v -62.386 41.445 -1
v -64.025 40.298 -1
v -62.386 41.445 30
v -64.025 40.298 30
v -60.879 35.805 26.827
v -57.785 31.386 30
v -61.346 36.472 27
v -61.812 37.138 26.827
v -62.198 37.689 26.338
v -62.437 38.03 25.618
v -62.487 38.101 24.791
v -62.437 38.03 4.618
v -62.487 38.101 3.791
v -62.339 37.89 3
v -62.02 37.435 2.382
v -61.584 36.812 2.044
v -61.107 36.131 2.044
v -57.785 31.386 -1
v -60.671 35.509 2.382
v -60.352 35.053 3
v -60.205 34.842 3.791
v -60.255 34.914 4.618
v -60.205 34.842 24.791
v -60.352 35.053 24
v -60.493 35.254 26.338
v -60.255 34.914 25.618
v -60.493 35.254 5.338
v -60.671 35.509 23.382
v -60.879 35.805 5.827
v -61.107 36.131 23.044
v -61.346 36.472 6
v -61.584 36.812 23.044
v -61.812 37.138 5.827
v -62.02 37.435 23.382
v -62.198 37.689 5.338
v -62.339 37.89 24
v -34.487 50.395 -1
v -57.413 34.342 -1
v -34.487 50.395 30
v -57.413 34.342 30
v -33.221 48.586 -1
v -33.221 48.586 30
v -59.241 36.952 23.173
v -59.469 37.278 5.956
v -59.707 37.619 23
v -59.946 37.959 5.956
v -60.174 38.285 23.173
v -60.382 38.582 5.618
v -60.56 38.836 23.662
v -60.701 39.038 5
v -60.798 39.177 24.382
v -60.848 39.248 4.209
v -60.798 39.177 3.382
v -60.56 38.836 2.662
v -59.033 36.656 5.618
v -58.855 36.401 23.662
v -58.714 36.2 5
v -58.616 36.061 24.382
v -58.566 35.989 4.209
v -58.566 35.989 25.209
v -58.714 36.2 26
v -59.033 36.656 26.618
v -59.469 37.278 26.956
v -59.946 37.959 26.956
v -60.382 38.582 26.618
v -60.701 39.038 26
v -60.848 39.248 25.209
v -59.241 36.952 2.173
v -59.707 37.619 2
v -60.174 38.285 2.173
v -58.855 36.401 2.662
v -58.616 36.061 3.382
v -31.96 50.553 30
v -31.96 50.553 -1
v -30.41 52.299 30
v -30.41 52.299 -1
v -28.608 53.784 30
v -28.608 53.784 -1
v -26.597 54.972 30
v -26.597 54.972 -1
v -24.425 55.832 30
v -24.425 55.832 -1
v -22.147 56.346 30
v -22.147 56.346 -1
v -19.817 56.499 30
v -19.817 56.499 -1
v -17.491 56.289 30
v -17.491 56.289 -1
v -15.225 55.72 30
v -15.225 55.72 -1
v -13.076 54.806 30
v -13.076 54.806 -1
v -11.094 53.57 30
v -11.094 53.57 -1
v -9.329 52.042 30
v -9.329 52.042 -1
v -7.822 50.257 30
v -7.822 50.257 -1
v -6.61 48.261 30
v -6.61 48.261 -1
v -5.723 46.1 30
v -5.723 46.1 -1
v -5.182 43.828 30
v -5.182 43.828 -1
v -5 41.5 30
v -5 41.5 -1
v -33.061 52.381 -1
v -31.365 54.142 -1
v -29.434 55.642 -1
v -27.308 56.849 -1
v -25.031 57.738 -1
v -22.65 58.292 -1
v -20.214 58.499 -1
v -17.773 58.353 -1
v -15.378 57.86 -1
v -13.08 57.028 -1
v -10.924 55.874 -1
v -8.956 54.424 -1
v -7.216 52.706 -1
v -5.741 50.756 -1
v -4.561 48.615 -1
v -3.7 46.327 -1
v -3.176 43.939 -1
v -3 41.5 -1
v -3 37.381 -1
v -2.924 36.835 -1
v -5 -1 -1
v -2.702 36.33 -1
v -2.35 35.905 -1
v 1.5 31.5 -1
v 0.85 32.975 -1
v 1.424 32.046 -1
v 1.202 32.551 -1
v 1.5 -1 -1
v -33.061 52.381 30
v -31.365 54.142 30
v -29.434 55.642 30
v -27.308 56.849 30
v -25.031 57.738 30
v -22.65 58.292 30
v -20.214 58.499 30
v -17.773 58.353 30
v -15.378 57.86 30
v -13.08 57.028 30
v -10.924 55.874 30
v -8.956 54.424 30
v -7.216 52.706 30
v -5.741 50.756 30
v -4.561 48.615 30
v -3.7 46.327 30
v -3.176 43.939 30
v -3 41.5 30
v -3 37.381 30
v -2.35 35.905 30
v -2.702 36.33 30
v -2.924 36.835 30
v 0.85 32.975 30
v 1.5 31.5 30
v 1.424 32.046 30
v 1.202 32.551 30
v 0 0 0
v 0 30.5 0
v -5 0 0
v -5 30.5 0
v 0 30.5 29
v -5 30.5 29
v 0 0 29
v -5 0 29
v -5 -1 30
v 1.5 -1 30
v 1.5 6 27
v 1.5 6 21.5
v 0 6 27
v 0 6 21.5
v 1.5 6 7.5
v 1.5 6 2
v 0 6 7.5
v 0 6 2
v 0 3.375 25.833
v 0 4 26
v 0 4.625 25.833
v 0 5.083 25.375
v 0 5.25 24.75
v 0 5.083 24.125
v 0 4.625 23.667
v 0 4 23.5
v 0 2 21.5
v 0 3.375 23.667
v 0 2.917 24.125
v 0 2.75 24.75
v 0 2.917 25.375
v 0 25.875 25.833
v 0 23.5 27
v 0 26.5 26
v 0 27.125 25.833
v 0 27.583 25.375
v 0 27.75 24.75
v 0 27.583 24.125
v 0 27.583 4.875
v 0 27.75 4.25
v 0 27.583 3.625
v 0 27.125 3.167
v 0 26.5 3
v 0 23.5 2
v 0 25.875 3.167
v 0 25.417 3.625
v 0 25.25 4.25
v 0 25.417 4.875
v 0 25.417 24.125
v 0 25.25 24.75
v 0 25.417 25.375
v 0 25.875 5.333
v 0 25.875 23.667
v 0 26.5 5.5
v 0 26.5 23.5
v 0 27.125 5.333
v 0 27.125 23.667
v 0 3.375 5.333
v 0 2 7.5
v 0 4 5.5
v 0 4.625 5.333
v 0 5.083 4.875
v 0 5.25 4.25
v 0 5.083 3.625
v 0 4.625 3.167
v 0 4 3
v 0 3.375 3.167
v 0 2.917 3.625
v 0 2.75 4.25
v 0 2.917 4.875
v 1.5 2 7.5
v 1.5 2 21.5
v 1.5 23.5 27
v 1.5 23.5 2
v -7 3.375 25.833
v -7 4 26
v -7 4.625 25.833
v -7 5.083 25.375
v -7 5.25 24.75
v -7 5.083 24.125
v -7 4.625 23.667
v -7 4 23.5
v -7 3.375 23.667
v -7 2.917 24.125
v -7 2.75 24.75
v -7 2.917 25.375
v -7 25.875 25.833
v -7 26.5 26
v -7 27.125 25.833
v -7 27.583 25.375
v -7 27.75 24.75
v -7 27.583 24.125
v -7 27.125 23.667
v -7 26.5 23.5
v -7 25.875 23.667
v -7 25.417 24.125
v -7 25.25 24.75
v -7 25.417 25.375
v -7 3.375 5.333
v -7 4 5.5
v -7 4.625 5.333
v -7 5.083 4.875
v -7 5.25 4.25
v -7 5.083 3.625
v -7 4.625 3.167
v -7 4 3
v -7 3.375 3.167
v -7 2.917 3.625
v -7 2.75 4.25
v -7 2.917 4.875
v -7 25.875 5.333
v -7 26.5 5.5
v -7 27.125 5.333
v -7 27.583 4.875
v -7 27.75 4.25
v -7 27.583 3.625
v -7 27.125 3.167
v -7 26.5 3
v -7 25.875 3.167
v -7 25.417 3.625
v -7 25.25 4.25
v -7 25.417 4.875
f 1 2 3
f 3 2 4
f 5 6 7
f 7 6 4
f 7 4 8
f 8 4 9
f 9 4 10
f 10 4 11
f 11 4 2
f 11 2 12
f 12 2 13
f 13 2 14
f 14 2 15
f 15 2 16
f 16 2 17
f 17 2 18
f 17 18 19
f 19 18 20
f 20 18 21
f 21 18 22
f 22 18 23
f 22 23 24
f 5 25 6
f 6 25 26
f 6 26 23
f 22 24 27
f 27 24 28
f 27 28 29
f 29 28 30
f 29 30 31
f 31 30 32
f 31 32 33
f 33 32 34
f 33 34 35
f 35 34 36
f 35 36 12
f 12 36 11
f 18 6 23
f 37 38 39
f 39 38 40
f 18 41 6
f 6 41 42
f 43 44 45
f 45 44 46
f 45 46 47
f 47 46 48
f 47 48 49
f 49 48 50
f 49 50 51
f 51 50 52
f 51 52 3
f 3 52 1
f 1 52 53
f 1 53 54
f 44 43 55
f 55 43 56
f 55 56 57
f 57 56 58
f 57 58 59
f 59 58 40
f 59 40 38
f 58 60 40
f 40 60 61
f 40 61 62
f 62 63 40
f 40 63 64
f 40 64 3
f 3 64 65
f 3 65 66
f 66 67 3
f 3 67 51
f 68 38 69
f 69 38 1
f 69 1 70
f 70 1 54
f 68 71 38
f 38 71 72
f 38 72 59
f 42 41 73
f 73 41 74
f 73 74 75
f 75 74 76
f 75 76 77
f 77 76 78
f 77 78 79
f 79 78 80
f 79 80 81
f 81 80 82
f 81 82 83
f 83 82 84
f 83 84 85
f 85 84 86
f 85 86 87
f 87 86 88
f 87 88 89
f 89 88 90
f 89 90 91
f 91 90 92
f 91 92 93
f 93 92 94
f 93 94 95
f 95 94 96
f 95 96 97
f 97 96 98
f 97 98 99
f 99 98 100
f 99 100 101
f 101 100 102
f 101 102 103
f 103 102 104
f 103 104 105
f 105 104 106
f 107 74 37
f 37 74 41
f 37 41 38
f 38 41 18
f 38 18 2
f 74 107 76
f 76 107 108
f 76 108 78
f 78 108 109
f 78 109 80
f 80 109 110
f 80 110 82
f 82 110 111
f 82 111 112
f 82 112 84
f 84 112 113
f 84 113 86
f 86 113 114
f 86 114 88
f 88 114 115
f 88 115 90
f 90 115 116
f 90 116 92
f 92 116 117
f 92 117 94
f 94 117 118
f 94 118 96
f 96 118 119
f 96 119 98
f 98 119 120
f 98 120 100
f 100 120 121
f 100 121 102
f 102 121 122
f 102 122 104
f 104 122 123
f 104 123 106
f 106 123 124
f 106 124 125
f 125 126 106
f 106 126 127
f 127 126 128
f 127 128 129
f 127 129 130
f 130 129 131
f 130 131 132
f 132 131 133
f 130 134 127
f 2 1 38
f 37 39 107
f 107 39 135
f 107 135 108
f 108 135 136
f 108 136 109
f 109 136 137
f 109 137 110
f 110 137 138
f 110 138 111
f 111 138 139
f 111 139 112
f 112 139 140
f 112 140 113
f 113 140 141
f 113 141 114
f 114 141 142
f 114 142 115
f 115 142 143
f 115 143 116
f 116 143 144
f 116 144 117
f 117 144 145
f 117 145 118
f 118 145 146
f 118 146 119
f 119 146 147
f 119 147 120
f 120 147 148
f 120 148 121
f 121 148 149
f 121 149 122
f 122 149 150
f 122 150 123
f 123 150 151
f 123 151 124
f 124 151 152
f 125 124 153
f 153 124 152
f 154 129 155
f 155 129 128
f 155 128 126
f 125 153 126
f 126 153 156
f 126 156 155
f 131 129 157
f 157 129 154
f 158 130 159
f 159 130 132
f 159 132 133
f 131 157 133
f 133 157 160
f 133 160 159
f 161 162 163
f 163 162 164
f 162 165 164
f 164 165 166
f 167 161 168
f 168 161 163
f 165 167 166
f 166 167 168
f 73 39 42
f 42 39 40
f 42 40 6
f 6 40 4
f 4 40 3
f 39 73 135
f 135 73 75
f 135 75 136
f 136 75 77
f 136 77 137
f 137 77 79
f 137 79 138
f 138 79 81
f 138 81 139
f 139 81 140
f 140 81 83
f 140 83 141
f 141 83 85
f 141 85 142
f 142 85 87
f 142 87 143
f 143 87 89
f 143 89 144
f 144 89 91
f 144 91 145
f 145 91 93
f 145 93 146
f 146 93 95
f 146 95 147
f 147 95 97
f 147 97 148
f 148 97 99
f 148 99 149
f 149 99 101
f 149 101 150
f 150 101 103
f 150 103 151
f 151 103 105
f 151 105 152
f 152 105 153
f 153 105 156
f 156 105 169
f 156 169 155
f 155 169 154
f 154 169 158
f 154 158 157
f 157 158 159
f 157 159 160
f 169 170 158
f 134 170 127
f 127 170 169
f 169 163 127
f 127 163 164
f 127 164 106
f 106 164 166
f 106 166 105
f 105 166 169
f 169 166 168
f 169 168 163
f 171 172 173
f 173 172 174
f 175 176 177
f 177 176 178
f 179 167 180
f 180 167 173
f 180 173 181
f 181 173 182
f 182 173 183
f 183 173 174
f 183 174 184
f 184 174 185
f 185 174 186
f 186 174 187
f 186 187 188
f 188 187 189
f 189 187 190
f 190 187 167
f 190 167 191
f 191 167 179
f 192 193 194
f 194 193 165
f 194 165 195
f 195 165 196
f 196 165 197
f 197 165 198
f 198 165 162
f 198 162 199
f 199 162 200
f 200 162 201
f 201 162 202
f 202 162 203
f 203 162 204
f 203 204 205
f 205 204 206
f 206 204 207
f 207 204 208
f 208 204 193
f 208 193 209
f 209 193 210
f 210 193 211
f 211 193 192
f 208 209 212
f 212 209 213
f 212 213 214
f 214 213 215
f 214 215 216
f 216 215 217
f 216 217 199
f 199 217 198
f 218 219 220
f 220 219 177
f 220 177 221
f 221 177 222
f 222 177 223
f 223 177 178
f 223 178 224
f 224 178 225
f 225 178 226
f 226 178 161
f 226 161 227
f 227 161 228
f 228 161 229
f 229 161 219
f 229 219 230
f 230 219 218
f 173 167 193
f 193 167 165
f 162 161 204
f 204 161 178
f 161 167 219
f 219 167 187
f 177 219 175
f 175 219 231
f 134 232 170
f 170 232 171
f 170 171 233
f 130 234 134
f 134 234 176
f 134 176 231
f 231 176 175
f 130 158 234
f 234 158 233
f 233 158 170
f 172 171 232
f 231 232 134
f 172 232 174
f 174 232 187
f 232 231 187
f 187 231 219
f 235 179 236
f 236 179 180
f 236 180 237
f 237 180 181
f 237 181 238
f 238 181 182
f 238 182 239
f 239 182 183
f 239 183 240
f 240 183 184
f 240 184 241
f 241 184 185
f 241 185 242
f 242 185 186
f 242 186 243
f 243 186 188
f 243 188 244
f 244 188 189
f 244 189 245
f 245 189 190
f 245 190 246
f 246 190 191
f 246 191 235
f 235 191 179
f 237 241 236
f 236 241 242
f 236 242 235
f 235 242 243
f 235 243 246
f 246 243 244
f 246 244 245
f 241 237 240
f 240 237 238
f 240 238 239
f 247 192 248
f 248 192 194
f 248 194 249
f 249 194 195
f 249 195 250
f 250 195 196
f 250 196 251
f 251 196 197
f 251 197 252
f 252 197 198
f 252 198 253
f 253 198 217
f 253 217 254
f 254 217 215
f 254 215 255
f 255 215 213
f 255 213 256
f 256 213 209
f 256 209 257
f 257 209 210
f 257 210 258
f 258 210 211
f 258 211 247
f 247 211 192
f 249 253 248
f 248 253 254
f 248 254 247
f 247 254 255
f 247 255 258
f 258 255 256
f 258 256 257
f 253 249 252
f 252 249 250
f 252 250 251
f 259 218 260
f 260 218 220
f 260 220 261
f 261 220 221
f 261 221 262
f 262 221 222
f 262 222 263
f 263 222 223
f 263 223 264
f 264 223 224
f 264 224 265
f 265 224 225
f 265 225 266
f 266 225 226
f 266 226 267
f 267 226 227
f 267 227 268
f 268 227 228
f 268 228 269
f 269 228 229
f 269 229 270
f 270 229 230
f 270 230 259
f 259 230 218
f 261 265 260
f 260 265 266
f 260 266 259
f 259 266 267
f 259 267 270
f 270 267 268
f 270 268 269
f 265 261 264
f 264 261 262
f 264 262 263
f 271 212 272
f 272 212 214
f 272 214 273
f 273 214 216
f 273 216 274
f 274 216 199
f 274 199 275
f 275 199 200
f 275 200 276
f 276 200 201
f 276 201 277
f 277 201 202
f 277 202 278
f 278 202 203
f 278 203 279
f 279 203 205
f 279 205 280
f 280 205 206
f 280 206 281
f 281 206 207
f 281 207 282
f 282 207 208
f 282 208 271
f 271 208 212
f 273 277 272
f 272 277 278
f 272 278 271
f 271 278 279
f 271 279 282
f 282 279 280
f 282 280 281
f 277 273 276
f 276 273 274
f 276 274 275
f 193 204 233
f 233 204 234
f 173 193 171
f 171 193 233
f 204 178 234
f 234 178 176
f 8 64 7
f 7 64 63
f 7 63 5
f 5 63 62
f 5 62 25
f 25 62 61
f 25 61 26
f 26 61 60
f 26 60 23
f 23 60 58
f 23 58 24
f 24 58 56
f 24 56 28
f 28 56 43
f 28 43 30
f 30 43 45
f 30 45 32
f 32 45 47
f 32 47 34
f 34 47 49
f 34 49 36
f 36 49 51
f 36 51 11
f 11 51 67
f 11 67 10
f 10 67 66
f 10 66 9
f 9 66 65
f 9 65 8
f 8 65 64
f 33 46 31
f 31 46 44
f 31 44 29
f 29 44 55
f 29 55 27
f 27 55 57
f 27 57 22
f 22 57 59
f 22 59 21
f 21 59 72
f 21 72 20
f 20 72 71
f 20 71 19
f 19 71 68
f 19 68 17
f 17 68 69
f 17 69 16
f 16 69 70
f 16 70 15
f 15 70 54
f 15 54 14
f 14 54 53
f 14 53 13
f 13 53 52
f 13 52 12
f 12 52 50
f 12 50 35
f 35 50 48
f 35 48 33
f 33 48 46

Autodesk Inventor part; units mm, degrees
ref_plane "YZ Plane" through (0, 0, 0) normal (1, 0, 0) x (0, 1, 0)
ref_plane "XZ Plane" through (0, 0, 0) normal (0, 1, 0) x (-1, 0, 0)
ref_plane "XY Plane" through (0, 0, 0) normal (0, 0, 1) x (1, 0, 0)
sketch "Skizze2" plane through (0, 0, 0) normal (1, 0, 0) x (0, 1, 0)
  line L0 (30.5, 0) -> (0, 0)
  line L1 (0, 0) -> (0, 29)
  line L2 (0, 29) -> (30.5, 29)
  line L3 (30.5, 29) -> (30.5, 0)
  line L4 (0, -5.8) -> (0, 34.8) projected
  line L5 (-26.8, 0) -> (40.05, 0) projected
  line L6 (23.5, 2) -> (7, 2)
  line L7 (7, 2) -> (7, 27)
  line L8 (7, 27) -> (23.5, 27)
  line L9 (23.5, 27) -> (23.5, 2)
  point P0 (0, 0)
  dimension "d2" = 30.5
  dimension "d3" = 29
  dimension "d4" = 2
  dimension "d5" = 2
  dimension "d6" = 7
  dimension "d7" = 7
extrude "Extrusion1" add sketch "Skizze2" along normal blind 1.5
sketch "Skizze4" plane through (0, 0, 0) normal (-1, 0, 0) x (0, 0, 1)
  line L0 (27, 7) -> (27, 23.5) projected
  line L1 (2, 23.5) -> (2, 7) projected
  line L2 (27, 23.5) -> (2, 23.5) projected
  line L3 (2, 7) -> (27, 7) projected
  circle A0 centre (4.25, 26.5) radius 1.25
  circle A1 centre (24.75, 26.5) radius 1.25
  circle A2 centre (4.25, 4) radius 1.25
  circle A3 centre (24.75, 4) radius 1.25
  point P0 (0, 0)
  dimension "d24" = 2.5
  dimension "d25" = 3
  dimension "d28" = 20.5
  dimension "d31" = 22.5
  dimension "d34" = 2.25
extrude "Extrusion2" add sketch "Skizze4" along normal blind 7 contours A0 | A1 | A2 | A3
sketch "Skizze5" plane through (0, 0, 0) normal (-1, 0, 0) x (0, 0, 1)
  line L0 (7.5, 7) -> (21.5, 7)
  line L1 (21.5, 7) -> (21.5, 2)
  line L2 (21.5, 2) -> (7.5, 2)
  line L3 (7.5, 2) -> (7.5, 7)
  line L4 (2, 7) -> (27, 7) projected
  circle A0 centre (4.25, 4) radius 1.25 projected
  circle A1 centre (24.75, 4) radius 1.25 projected
  line L5 (29, 0) -> (0, 0) projected
  dimension "d35" = 2
  dimension "d36" = 2
  dimension "d37" = 2
extrude "Extrusion3" cut sketch "Skizze5" against normal through all contours L0 L1 L2 L3
sketch "Skizze6" plane through (0, 0, 0) normal (-1, 0, 0) x (0, 0, 1)
  line L0 (2, 7) -> (7.5, 7) projected
  line L1 (7.5, 2) -> (7.5, 7) projected
  line L2 (2, 7) -> (7.5, 7)
  line L3 (7.5, 7) -> (7.5, 6)
  line L4 (7.5, 6) -> (2, 6)
  line L5 (2, 6) -> (2, 7)
  line L6 (27, 7) -> (21.5, 7)
  line L7 (21.5, 7) -> (21.5, 6)
  line L8 (21.5, 6) -> (27, 6)
  line L9 (27, 6) -> (27, 7)
  line L10 (21.5, 7) -> (21.5, 2) projected
  point P0 (0, 0)
  dimension "d40" = 1
extrude "Extrusion4" cut sketch "Skizze6" against normal through all
sketch "Skizze8" plane through (1.5, 0, 0) normal (1, 0, 0) x (0, 0, -1)
  line L0 (-30, 31.5) -> (1, 31.5)
  line L1 (1, 31.5) -> (1, -1)
  line L2 (1, -1) -> (-30, -1)
  line L3 (-30, -1) -> (-30, 31.5)
  line L4 (-29, 0) -> (0, 0) projected
  line L5 (0, 0) -> (0, 30.5) projected
  line L6 (0, 30.5) -> (-29, 30.5) projected
  line L7 (-29, 30.5) -> (-29, 0) projected
  line L8 (-29, 30.5) -> (0, 30.5)
  line L9 (0, 30.5) -> (0, 0)
  line L10 (0, 0) -> (-29, 0)
  line L11 (-29, 0) -> (-29, 30.5)
  dimension "d43" = 1
  dimension "d44" = 1
  dimension "d45" = 1
  dimension "d46" = 1
extrude "Extrusion5" add sketch "Skizze8" against normal blind 6.5
sketch "Skizze9" plane through (1.5, -1, -1) normal (0, 0, -1) x (-1, 0, 0)
  line L0 (6.5, 32.5) -> (6.5, 0) projected
  line L1 (0, 32.5) -> (6.5, 32.5) projected
  line L2 (0, 0) -> (0, 32.5) projected
  line L3 (0, 32.5) -> (6.5, 32.5)
  line L4 (6.5, 32.5) -> (6.5, 37.5)
  line L5 (0, 31.7695) -> (0, 32.5)
  line L6 (6.5, 37.5) -> (4.5, 37.5)
  line L7 (3.8504, 36.9054) -> (0.6496, 33.9752)
  arc A0 (0.6496, 33.9752) -> (0, 32.5) centre (2, 32.5) ccw
  line L8 (4.5, 38.3806) -> (4.5, 42.5)
  line L9 (4.5, 42.5) -> (6.5, 42.5)
  line L10 (6.5, 42.5) -> (6.5, 37.5)
  arc A1 (3.8504, 36.9054) -> (4.5, 38.3806) centre (2.5, 38.3806) ccw
  point P0 (1.5, 1)
  point P1 (-0.2652, 33.1379)
  dimension "d58" = 2
  dimension "d60" = 2
  dimension "d61" = 5
  dimension "d62" = 2
  dimension "d63" = 10
extrude "Extrusion6" add sketch "Skizze9" against normal blind 31
sketch "Skizze12" plane through (1.5, -1, -1) normal (0, 0, -1) x (-1, 0, 0)
  circle A0 centre (21.5, 42.5) radius 15
  circle A1 centre (21.5, 42.5) radius 17
  line L0 (4.5, 42.5) -> (4.5, 38.3806) projected
  line L1 (6.5, 42.5) -> (4.5, 42.5) projected
  line L2 (4.5, 42.5) -> (38.5, 42.5)
  point P0 (1.5, 1)
  point P1 (36.5, 42.5)
  dimension "d64" = 30
extrude "Extrusion7" add sketch "Skizze12" against normal blind 31 contours A0 L1 A1 L2 picked at (5.4766, 45.0527)
sketch "Skizze13" plane through (1.5, -1, -1) normal (0, 0, -1) x (-1, 0, 0)
  line L0 (0, 0) -> (6.5, 0) projected
  line L1 (0, 0) -> (35.9872, 51.395)
  arc A0 (38.5, 42.5) -> (4.5, 42.5) centre (21.5, 42.5) ccw projected
  line L2 (0, 0) -> (0, 32.5) projected
  arc A1 (38.5, 42.5) -> (35.9872, 51.395) centre (21.5, 42.5) ccw
  arc A2 (36.5, 42.5) -> (6.5, 42.5) centre (21.5, 42.5) ccw projected
  line L3 (38.5, 42.5) -> (36.5, 42.5)
  arc A3 (36.5, 42.5) -> (34.7206, 49.5862) centre (21.5, 42.5) ccw
  point P0 (1.5, 1)
  dimension "d67" = 35
extrude "Extrusion8" cut sketch "Skizze13" against normal through all
sketch "Skizze14" plane through (1.5, -1, -1) normal (0, 0, -1) x (-1, 0, 0)
  arc A0 (34.7206, 49.5862) -> (6.5, 42.5) centre (21.5, 42.5) ccw projected
  circle A1 centre (21.5, 42.5) radius 15
  line L0 (34.7206, 49.5862) -> (59.2848, 32.3862)
  line L1 (59.2848, 32.3862) -> (60.5513, 34.195)
  arc A2 (35.9872, 51.395) -> (4.5, 42.5) centre (21.5, 42.5) ccw projected
  line L2 (60.5513, 34.195) -> (35.9872, 51.395)
  line L3 (34.7206, 49.5862) -> (35.9872, 51.395) projected
  line L4 (60.5513, 34.195) -> (65.5248, 41.2979)
  line L5 (65.5248, 41.2979) -> (63.8865, 42.445)
  line L6 (63.8865, 42.445) -> (58.913, 35.3422)
  point P0 (1.5, 1)
  dimension "d70" = 90
  dimension "d72" = 2
  dimension "d73" = 17.2
  dimension "d74" = 90
  dimension "d76" = 8.25
extrude "Extrusion9" add sketch "Skizze14" against normal blind 31 contours L3 L2 L1 L0 | L2 L6 L5 L4
sketch "Skizze15" plane through (-62.3865, 41.445, 30) normal (0.819152, 0.5735764, 0) x (0, 0, -1)
  circle A0 centre (26, -4.671) radius 2
  circle A1 centre (5, -4.671) radius 2
  line L0 (31, 0) -> (31, -8.671) projected
  line L1 (0, -8.671) -> (0, 0) projected
  line L2 (31, -8.671) -> (0, -8.671) projected
  point P0 (30, -69.7332)
  point P1 (31, -4.3355)
  dimension "d79" = 4
  dimension "d80" = 4
  dimension "d82" = 5
  dimension "d83" = 4
  dimension "d84" = 4
  dimension "d85" = 5
extrude "Extrusion10" cut sketch "Skizze15" against normal through all
properties part number "Bildschirmhalter"
